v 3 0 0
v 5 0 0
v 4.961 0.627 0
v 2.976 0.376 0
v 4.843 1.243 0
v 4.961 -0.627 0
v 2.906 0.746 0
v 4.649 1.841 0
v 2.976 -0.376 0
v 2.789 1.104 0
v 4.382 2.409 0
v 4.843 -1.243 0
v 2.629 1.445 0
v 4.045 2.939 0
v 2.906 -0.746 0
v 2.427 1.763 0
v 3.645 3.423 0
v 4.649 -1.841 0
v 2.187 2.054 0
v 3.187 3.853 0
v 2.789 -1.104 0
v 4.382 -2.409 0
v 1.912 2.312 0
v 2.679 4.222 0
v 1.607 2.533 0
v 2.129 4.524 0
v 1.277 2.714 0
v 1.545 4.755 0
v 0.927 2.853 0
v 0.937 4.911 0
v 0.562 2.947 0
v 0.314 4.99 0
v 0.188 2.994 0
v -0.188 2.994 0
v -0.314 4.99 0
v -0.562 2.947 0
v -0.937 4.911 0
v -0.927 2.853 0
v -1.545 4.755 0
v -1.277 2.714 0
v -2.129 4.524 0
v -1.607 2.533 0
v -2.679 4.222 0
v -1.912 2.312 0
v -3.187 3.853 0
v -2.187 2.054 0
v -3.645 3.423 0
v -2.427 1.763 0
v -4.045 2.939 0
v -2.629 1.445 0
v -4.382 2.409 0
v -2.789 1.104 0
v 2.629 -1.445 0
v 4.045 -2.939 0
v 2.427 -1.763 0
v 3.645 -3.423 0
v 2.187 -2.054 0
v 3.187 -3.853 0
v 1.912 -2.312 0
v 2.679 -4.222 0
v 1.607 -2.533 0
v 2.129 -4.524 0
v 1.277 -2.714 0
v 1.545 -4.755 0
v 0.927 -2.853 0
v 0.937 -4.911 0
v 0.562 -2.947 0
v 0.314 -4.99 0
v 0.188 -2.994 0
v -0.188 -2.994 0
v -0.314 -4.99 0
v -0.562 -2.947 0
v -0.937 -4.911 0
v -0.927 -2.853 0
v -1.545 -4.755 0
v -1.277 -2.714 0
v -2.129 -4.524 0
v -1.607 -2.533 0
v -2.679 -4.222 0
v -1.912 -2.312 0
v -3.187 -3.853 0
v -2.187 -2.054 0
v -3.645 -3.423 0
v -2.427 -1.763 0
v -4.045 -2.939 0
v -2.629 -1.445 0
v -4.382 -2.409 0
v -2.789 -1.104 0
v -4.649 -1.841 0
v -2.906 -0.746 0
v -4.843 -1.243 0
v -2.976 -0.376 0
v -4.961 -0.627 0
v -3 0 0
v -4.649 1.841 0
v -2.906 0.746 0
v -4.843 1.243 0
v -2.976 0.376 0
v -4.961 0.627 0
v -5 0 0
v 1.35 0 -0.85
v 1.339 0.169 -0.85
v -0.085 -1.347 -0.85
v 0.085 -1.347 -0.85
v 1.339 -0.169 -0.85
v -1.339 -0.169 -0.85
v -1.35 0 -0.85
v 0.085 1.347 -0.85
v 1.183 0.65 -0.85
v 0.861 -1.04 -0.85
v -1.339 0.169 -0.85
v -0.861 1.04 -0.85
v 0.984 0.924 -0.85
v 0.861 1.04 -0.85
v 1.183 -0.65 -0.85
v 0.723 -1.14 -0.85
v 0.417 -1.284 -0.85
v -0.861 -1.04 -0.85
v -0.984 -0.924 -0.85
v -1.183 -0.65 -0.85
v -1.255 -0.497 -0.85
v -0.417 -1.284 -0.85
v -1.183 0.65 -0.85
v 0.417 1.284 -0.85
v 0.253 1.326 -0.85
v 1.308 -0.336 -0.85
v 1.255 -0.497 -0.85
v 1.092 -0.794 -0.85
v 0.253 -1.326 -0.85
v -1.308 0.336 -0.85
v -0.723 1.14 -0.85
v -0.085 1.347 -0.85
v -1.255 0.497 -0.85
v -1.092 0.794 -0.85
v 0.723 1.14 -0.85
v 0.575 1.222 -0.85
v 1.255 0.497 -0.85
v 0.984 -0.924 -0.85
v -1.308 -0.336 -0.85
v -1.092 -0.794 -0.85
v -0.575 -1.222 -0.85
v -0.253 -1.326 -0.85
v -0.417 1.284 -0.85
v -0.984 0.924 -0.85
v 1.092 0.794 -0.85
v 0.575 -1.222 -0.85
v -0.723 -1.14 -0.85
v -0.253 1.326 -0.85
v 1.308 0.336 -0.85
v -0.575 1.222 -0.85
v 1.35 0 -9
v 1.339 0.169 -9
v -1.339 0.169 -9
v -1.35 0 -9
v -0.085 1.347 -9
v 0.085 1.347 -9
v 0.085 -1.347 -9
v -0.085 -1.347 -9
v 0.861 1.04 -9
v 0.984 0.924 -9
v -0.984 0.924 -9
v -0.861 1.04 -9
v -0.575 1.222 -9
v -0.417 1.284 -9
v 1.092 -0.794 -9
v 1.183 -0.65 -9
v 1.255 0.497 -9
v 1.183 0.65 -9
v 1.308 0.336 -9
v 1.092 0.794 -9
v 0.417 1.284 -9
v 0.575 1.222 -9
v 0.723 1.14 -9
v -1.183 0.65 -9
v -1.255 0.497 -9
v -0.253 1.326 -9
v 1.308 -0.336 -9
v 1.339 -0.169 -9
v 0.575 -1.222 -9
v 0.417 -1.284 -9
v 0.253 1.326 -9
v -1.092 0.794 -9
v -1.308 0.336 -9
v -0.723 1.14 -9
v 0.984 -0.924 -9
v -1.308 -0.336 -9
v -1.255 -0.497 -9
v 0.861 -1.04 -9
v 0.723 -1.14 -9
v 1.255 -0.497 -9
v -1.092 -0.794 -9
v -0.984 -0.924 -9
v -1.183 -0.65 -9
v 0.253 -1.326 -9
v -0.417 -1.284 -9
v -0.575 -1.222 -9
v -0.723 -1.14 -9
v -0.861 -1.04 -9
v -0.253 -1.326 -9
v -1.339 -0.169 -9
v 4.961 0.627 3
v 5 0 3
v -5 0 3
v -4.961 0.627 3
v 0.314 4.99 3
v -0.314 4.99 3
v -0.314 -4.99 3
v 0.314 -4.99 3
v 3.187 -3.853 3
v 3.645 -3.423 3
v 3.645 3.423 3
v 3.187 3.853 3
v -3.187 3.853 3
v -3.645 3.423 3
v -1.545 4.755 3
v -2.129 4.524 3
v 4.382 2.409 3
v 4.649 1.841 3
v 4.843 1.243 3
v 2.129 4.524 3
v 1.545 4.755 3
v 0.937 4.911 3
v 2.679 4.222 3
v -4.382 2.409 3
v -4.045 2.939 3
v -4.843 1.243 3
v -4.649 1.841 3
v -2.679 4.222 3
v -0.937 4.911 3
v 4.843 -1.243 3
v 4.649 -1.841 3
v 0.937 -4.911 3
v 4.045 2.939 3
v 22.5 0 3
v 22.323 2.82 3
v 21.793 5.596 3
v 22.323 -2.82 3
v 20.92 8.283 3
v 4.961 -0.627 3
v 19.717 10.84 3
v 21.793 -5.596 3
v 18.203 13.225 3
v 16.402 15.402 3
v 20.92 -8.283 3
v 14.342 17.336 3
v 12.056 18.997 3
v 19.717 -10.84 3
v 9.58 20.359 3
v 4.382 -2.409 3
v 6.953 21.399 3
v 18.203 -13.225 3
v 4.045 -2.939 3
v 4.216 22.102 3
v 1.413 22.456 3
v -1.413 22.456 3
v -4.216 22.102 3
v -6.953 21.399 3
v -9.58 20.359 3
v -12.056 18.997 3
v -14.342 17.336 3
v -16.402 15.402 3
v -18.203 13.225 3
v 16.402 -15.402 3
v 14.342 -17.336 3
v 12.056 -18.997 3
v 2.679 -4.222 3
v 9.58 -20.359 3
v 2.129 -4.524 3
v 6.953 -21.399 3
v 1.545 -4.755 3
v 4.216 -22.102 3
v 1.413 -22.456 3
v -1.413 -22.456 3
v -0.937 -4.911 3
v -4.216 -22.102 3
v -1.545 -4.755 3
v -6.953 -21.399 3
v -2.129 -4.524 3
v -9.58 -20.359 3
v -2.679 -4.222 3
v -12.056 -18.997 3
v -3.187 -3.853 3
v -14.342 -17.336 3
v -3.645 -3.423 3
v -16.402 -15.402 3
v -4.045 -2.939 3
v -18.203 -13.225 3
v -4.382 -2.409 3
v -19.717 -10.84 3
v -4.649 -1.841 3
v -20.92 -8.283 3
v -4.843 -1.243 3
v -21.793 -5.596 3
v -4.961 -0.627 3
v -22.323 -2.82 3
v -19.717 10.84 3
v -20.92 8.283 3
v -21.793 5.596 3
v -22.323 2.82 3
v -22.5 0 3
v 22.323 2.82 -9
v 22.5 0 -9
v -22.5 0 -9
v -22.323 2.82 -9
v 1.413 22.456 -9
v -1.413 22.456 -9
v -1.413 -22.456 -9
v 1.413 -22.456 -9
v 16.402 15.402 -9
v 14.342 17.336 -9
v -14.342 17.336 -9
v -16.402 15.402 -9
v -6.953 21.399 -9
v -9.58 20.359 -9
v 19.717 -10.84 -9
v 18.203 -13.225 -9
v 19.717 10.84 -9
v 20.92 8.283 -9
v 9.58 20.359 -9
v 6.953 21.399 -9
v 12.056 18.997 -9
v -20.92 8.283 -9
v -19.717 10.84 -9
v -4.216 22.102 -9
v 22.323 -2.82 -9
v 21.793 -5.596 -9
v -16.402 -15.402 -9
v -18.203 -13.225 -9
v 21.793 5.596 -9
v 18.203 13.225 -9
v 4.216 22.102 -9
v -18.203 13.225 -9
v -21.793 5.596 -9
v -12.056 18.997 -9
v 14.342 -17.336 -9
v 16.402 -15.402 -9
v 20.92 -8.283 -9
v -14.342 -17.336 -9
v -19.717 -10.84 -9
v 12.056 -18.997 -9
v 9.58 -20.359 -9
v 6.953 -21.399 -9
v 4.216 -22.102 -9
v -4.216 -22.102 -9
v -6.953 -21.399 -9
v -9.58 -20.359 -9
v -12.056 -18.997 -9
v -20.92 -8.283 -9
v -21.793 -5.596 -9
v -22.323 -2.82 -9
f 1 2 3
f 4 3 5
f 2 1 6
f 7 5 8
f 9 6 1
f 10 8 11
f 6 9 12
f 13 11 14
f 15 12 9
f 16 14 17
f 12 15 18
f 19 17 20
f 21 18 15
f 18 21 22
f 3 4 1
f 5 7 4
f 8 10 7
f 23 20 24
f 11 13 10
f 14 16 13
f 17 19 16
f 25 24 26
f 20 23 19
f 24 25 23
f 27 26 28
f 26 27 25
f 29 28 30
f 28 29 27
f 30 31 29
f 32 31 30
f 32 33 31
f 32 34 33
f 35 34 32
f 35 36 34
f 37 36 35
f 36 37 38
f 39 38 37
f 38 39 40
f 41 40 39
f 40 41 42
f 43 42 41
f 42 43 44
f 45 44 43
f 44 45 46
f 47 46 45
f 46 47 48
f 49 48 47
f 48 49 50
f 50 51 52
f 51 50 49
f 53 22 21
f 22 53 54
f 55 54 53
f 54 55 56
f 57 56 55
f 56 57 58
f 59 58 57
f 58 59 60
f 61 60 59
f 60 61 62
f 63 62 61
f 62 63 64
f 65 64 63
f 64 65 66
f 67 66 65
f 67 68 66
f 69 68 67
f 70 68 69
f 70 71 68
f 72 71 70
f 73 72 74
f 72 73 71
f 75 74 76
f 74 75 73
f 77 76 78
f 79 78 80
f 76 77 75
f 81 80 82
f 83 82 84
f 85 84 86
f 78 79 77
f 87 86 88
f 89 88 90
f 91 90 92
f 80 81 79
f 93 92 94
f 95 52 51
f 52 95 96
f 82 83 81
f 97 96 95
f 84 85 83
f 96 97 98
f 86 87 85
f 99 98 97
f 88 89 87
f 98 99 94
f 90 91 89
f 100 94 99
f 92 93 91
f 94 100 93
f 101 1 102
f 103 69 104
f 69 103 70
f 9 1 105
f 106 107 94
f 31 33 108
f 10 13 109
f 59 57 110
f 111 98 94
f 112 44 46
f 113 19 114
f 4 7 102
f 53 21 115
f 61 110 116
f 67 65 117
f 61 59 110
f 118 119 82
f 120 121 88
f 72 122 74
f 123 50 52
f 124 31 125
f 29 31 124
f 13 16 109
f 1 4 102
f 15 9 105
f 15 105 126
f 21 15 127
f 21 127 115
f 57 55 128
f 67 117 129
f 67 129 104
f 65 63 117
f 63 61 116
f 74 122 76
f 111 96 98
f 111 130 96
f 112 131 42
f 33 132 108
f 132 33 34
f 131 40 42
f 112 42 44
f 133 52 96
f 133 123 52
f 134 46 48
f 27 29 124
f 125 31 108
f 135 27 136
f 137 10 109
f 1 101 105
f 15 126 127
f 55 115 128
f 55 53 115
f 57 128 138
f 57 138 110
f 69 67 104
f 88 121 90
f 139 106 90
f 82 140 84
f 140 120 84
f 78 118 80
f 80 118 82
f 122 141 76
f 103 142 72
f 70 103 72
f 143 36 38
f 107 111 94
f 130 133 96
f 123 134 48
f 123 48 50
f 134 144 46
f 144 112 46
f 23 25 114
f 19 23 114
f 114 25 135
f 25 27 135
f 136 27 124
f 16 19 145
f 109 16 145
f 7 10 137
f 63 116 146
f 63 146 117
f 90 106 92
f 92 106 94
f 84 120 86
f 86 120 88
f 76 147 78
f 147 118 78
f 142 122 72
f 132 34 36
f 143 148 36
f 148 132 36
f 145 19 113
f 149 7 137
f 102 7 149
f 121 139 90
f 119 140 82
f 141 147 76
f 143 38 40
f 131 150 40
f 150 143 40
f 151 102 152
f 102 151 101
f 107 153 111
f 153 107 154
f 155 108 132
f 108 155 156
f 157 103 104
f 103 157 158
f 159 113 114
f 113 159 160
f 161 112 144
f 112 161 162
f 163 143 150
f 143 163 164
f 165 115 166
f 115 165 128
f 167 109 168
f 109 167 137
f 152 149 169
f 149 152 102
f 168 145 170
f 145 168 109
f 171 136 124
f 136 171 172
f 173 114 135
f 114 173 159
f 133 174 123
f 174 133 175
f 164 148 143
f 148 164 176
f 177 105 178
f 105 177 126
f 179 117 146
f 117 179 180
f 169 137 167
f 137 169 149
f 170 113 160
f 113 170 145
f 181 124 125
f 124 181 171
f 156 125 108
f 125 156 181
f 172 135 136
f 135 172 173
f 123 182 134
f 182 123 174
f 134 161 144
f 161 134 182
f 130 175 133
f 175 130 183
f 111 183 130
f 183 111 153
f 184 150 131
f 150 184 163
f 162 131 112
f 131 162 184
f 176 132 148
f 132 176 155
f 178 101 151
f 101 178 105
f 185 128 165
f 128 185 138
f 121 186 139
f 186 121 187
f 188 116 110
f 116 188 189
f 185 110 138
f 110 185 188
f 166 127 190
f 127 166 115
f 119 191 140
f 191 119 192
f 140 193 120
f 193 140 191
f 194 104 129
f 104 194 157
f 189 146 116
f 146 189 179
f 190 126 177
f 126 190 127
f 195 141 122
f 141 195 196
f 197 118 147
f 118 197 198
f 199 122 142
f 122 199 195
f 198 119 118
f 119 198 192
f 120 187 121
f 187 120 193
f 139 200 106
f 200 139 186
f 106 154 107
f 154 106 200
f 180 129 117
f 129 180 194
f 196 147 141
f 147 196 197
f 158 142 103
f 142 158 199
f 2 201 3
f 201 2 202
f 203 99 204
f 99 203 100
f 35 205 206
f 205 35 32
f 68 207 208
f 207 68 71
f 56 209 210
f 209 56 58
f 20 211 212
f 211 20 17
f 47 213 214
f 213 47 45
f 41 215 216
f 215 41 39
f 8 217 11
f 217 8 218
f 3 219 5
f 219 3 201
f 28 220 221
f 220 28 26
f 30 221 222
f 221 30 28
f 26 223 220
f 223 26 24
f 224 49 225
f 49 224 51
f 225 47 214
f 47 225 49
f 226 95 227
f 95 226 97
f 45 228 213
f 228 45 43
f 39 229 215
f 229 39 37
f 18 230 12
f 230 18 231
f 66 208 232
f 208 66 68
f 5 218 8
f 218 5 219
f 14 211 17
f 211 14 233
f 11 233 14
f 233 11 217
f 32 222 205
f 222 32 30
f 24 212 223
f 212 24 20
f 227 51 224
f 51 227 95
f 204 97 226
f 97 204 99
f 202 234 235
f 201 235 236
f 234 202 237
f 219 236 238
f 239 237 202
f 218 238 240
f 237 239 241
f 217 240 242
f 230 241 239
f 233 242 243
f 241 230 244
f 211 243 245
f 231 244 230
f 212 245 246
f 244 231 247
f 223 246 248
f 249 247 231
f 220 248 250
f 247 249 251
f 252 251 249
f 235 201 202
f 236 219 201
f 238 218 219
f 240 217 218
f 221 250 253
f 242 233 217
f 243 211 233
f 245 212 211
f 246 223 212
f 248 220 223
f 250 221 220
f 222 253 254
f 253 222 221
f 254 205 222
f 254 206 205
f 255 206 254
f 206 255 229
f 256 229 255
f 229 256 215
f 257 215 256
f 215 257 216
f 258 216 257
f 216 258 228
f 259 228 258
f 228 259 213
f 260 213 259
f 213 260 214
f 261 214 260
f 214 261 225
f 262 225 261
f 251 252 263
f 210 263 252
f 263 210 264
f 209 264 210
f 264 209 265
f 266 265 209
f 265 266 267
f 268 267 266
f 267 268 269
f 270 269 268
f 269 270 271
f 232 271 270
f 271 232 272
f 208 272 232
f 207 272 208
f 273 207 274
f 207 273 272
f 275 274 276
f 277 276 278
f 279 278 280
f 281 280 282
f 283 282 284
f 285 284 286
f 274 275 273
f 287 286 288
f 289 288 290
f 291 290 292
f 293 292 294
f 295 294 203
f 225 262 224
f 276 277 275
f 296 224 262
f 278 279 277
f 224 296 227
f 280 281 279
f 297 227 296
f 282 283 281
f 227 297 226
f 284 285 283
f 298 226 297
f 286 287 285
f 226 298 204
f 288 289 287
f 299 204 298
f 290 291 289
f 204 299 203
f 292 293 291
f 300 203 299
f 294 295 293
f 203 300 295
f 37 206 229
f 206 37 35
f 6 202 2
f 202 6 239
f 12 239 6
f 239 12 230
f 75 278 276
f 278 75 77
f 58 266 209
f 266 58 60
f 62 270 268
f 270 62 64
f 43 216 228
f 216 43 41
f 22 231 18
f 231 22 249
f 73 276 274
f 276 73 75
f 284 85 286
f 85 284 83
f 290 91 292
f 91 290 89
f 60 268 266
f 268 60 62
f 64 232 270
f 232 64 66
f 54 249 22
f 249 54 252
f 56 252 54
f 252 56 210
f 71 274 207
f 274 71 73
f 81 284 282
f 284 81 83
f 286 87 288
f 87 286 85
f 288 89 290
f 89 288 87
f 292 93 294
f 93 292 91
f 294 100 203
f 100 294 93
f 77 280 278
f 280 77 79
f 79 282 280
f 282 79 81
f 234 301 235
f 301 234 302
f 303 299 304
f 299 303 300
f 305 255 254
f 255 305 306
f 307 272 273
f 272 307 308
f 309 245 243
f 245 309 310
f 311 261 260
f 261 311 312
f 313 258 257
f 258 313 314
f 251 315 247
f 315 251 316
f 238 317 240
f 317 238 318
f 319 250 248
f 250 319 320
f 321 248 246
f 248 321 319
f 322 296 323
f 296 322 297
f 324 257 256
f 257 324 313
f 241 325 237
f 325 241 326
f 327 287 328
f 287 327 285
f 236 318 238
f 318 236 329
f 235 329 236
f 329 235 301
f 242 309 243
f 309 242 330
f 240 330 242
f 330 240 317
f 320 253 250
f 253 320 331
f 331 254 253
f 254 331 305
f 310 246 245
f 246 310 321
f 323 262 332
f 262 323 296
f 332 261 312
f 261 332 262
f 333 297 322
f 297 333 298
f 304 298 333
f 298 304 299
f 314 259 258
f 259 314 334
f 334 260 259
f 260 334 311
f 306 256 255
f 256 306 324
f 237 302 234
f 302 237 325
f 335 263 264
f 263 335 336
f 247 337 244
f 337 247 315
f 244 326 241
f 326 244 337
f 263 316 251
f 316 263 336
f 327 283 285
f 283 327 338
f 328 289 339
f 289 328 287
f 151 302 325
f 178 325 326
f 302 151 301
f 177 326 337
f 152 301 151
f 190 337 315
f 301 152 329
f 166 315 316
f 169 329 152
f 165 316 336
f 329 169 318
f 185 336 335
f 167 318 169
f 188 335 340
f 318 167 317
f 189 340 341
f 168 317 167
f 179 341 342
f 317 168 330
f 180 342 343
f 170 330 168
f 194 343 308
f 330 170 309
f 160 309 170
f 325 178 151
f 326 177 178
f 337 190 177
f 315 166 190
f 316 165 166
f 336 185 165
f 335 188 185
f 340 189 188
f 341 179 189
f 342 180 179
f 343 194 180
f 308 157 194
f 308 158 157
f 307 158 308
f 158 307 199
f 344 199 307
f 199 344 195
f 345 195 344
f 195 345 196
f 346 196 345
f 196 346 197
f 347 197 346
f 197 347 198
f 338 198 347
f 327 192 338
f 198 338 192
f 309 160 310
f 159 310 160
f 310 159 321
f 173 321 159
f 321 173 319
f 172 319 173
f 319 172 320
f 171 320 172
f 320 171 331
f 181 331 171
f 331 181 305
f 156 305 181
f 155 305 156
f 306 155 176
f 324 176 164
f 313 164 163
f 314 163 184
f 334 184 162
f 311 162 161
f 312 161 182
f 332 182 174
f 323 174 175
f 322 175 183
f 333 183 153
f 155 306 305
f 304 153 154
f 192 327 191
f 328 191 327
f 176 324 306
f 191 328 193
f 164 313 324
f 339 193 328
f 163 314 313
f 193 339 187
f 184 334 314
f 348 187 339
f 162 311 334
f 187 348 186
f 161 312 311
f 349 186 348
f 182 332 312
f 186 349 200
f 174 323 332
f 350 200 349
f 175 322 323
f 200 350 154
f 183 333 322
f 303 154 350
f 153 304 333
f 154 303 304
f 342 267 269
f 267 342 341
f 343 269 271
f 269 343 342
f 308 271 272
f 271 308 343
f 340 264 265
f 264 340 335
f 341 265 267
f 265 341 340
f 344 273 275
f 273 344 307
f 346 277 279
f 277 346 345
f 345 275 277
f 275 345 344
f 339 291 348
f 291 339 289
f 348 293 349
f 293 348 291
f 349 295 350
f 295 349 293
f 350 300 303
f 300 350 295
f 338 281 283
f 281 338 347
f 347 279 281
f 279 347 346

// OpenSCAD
$fn = 50;

difference() {
	union() {
		translate(v = [0, 0, -9.0]) {
			cylinder(h = 12, r = 22.5);
		}
	}
	union() {
		translate(v = [0, 0, 0]) {
			rotate(a = [0, 0, 0]) {
				difference() {
					union() {
						translate(v = [0, 0, -12.0]) {
							cylinder(h = 12, r = 1.0);
						}
						translate(v = [0, 0, -0.85]) {
							cylinder(h = 0.85, r1 = 1.35, r2 = 3.0);
						}
						translate(v = [0, 0, -12.0]) {
							cylinder(h = 12, r = 1.35);
						}
						translate(v = [0, 0, -12.0]) {
							cylinder(h = 12, r = 1.0);
						}
					}
					union();
				}
			}
		}
		#cylinder(h = 3, r = 5.0);
	}
}
